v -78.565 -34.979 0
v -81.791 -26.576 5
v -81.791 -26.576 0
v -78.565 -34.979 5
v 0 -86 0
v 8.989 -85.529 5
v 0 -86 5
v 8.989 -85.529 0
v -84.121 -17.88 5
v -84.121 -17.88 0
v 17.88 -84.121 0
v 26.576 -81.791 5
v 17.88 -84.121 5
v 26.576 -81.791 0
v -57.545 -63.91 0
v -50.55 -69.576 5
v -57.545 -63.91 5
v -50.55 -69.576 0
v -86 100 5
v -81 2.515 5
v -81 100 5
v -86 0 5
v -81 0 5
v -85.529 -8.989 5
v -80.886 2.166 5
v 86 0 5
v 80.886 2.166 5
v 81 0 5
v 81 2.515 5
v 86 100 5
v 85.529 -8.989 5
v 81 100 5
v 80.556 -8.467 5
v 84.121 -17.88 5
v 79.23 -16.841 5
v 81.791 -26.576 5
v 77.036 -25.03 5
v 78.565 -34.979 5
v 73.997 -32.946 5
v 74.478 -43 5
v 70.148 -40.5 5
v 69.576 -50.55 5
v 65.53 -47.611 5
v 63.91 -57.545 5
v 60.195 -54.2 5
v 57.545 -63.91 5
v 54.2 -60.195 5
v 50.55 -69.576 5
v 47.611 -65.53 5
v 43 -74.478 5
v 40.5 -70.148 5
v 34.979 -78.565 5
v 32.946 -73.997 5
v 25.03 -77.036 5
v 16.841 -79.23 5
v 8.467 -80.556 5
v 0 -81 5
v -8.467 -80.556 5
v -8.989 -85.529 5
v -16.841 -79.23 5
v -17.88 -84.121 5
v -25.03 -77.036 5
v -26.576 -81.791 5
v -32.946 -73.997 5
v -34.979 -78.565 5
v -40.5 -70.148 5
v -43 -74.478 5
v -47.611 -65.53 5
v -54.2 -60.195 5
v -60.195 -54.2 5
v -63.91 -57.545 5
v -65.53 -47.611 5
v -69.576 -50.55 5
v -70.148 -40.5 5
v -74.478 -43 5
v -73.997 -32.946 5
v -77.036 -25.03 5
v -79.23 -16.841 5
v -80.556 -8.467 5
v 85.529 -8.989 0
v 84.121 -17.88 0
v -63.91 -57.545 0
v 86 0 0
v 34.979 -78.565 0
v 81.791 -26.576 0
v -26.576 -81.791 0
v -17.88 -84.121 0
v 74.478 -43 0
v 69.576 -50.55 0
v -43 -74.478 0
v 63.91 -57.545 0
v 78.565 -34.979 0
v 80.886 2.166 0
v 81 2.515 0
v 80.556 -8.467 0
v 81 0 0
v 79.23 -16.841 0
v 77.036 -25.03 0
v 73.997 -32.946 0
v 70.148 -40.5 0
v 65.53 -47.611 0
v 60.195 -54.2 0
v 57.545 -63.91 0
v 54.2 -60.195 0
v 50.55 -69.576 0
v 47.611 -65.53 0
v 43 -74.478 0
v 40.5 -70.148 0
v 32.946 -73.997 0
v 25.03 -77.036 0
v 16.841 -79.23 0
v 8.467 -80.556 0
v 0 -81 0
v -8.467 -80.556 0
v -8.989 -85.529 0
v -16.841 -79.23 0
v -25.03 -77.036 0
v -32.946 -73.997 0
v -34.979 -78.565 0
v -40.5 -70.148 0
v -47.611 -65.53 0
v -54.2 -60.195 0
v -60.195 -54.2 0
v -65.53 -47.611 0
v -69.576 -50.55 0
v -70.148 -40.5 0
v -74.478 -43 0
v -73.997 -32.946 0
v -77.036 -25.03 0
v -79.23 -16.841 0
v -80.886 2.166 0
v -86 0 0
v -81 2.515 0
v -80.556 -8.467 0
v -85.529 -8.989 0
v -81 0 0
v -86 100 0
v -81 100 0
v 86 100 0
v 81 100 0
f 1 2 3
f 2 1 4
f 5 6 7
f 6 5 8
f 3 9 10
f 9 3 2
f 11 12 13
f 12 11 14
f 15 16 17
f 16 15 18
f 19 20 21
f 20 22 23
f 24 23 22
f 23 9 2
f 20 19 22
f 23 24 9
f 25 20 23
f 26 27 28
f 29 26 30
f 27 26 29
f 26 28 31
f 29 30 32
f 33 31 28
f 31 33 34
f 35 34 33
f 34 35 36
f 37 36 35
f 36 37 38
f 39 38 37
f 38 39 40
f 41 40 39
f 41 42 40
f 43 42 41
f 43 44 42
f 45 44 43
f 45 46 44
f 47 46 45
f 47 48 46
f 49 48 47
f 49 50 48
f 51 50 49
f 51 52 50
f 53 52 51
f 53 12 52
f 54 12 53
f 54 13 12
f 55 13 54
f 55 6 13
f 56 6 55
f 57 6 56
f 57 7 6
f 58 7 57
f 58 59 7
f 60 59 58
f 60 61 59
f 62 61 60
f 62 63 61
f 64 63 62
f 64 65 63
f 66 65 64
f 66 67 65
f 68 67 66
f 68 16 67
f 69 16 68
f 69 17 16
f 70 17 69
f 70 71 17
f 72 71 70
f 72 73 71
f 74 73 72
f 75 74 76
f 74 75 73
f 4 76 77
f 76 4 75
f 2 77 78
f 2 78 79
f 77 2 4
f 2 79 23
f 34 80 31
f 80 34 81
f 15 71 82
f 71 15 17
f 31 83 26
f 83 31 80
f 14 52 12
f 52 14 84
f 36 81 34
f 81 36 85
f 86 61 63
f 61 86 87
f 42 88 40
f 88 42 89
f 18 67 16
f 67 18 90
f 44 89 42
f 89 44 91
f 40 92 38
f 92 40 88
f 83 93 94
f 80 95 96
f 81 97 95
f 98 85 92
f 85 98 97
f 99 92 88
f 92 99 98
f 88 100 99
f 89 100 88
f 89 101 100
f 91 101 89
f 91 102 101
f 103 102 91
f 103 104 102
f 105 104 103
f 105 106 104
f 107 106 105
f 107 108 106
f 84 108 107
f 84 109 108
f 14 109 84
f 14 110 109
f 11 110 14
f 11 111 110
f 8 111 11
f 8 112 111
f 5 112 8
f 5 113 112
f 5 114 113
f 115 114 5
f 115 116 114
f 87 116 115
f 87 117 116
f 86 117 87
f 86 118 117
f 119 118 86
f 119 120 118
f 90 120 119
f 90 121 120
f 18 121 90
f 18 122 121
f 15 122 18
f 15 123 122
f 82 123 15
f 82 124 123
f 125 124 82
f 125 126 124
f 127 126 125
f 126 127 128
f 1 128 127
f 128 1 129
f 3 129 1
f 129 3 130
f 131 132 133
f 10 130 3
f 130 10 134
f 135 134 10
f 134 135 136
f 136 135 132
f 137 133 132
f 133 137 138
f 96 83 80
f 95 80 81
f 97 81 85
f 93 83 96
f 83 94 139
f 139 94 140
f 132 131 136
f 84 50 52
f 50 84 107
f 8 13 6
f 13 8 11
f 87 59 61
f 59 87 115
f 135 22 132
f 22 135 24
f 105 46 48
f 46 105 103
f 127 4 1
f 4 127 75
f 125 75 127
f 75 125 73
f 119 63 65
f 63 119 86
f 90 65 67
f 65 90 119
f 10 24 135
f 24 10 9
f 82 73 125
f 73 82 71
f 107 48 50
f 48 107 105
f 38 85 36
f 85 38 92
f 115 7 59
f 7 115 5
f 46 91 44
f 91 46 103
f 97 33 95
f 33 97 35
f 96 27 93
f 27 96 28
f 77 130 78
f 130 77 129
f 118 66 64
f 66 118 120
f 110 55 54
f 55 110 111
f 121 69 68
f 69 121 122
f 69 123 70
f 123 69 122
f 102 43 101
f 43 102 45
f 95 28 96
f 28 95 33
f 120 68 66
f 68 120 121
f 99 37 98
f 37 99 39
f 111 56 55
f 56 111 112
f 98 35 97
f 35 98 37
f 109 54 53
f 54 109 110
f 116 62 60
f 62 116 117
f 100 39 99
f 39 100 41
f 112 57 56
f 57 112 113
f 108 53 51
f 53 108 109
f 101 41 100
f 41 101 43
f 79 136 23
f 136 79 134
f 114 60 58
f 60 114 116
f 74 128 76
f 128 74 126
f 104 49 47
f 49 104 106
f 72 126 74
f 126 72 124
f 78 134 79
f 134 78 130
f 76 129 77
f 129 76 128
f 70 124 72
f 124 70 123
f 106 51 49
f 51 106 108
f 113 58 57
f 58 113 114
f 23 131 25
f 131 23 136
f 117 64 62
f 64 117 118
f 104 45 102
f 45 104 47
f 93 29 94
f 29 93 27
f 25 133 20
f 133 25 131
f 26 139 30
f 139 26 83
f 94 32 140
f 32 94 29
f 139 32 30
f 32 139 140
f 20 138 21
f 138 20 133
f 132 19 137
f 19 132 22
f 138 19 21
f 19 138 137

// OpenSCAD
// file: ../../../external-resources/toys/fidget-spinners/nested-rings/switchborg/parameterized/parameterized-nested-rings.scad
use <../nested-rings.scad>

module stockNestedRings()
{
	outer_radius = stockNestedRings_outerRadius();

	ring_count = stockNestedRings_ringCount();

	nestedRings(outer_radius = outer_radius,
				ring_count = ring_count);
}
// file: ../../../shapes/open-cylinder/open-cylinder.scad
// // TODO: Lower this to 50.
module openCylinder(height = 3,
                    outerRadius = 7,
                    innerRadius = 4.5,
                    fn = 100)
{
echo("hi oc");    
    $fn = fn;

    difference()
    {
        cylinder(r=outerRadius,
                 h=height);

        translate([0, 0, -1])
        cylinder(r=innerRadius,
                 h=height+1.01);
    }
}
// file: ../chameleon-eyes/chameleon-glasses.scad
use <../../../external-resources/toys/fidget-spinners/nested-rings/switchborg/nested-rings.scad>
use <../../../external-resources/toys/fidget-spinners/nested-rings/switchborg/parameterized/parameterized-nested-rings.scad>

module chameleonGlasses()
{

    stockNestedRings();

	outer_radius = stockNestedRings_outerRadius();

	step = stockNestedRings_step();

	ring_count = stockNestedRings_ringCount();

	xTranslate = outer_radius +
				 (stockNestedRings_biconeGap() + step) * ring_count;

    translate([xTranslate,0,0])
    stockNestedRings();
}
// file: ../../../external-resources/toys/fidget-spinners/nested-rings/switchborg/nested-rings.scad
// source: https://www.thingiverse.com/thing:2989760

echo("hello nrs");

// Variables' comments formatted for Thingiverse Customizer.

// Cut a notch out of the rings to preview how the interior fits. Disable before printing!
preview_cut = false;

// Style of rings. Biconical rings can slide axially as well as tumbling; spherical rings are close-fitting and more likely to jam.
type = "biconical";  // [biconical:Biconical, spherical:Spherical, spherical_one_hole:Spherical (closed on top)]

// For biconical rings, the faces of the rings will have a radius this many millimeters smaller than the center. Ignored for spherical rings.
bicone_opening_reduction = 3.1;

// For spherical rings, the width of a centered thinner band of each ring, in millimeters. This is intended for rings printed with transparent material in that band. Set to zero to disable.
spherical_thin_band_width = 0;

// For spherical rings, the thickness of a centered thinner band of each ring, in millimeters. This is intended for rings printed with transparent material in that band. Cannot be larger than the ring thickness. Ignored if thin band width is zero.
spherical_thin_band_thickness = 0.6;

// For spherical rings, the amount of space between adjacent rings, in millimeters. Set this as low as you can without the surfaces fusing when printed.
spherical_gap = 0.6;

/* [Hidden] */

spherical = type == "spherical" || type == "spherical_one_hole";

// Chosen constants and not-exposed calculations
SMOOTH_FACETS = 240;

//gap = spherical ? spherical_gap : bicone_gap;

facets = spherical ? SMOOTH_FACETS / 2 : SMOOTH_FACETS;  // make spheres somewhat less super-expensive

// Derived values / aliases
zradius = stockNestedRings_ringWidth() / 2;


module nestedRings(outer_radius, ring_count)
{
    difference()
	{
        main(outer_radius = outer_radius,
			 ring_count = ring_count);

        if (preview_cut)
        translate([0, 0, -500])
        cube([1000, 1000, 1000]);
    }
}

module main(outer_radius,
		    ring_count)
{
	step = stockNestedRings_step();

	ring_thickness = stockNestedRings_ringThickness();

//	ring_count = 1;

    for (i = [0:ring_count - 1])
	{
        radius = outer_radius - i * step;

        unit(r2 = radius,
			 ring_thickness = ring_thickness);
    }
}

module unit(r2, ring_thickness) {
    if (spherical) {
        rotate_extrude($fn = facets)
        intersection() {
            difference() {
                circle(r = r2, $fn = facets);
                circle(r = r2 - ring_thickness, $fn = facets);

                if (spherical_thin_band_width > 0) {
                    minkowski() {
                        intersection() {
                            circle(r = r2 - ring_thickness, $fn = facets);

                            translate([0, -spherical_thin_band_width / 2])
                            square([r2 * 1.5, spherical_thin_band_width]);
                        }

                        // diamond shape to create 45° overhangs
                        circle(r=ring_thickness - spherical_thin_band_thickness, $fn=4);
                    }
                }
            }

            translate([0, -zradius])
            square([r2 * 1.5, type == "spherical_one_hole" ? 1000 : zradius * 2]);
        }

    } else if (type == "biconical") {
        r1 = r2 - bicone_opening_reduction;
        //linear_extrude(2)
        rotate_extrude($fn = facets)
        polygon([
            [r1, zradius],
            [r2, 0],
            [r1, -zradius],
            [r1 - ring_thickness, -zradius],
            [r2 - ring_thickness, 0],
            [r1 - ring_thickness, zradius],
        ]);

    } else {
        echo("Error: ring type not valid");
    }
}

// Constants and derived values follow

// Thickness of each ring, in millimeters. Setting this too low will result in rings which pop apart too easily.
function stockNestedRings_ringThickness() = 1.4;

// Radius of the midline of the largest ring, in millimeters.
function stockNestedRings_outerRadius() = 33;

// Number of rings to generate. The size is determined starting from the center, so more rings is larger.
function stockNestedRings_ringCount() = 6;

// Width of the rings (z axis height as printed), in millimeters.
function stockNestedRings_ringWidth() = 20;

// For biconical rings, the amount of space between adjacent rings (when they are concentric), in millimeters. Must be smaller than Bicone Opening Reduction to prevent the rings from just falling apart.
function stockNestedRings_biconeGap() = 2;

function stockNestedRings_step() = stockNestedRings_biconeGap() + stockNestedRings_ringThickness();
// main file
use <../../../external-resources/toys/fidget-spinners/nested-rings/switchborg/nested-rings.scad>

use <../chameleon-eyes/chameleon-glasses.scad>

use <../../../shapes/open-cylinder/open-cylinder.scad>

xTranslate = -(stockNestedRings_outerRadius() * 1 + 12.5);

module frame()
{
    color("green")
    openCylinder(height = height,
            outerRadius = outerRadius,
            innerRadius = innerRadius,
            fn = fn);
}


//showCameleonFrame = true;
showCameleonFrame = false;

if(showCameleonFrame)
{
    translate([xTranslate,0,0])
    chameleonGlasses();
}

fn = 60;
height = 5;
outerRadius = (-xTranslate * 2) - 5;
innerRadius = outerRadius - 5;

difference()
{
    frame();

    color("red")
    translate([0, 30, -0.001])
    cylinder(r=outerRadius, h =  height + 1);
}

translateArmX = 81;
translate([translateArmX,0,0])
cube([5,100,height]);



translateOtherArmX = -86;
color("purple")
translate([translateOtherArmX,0,0])
cube([5,100,height]);
